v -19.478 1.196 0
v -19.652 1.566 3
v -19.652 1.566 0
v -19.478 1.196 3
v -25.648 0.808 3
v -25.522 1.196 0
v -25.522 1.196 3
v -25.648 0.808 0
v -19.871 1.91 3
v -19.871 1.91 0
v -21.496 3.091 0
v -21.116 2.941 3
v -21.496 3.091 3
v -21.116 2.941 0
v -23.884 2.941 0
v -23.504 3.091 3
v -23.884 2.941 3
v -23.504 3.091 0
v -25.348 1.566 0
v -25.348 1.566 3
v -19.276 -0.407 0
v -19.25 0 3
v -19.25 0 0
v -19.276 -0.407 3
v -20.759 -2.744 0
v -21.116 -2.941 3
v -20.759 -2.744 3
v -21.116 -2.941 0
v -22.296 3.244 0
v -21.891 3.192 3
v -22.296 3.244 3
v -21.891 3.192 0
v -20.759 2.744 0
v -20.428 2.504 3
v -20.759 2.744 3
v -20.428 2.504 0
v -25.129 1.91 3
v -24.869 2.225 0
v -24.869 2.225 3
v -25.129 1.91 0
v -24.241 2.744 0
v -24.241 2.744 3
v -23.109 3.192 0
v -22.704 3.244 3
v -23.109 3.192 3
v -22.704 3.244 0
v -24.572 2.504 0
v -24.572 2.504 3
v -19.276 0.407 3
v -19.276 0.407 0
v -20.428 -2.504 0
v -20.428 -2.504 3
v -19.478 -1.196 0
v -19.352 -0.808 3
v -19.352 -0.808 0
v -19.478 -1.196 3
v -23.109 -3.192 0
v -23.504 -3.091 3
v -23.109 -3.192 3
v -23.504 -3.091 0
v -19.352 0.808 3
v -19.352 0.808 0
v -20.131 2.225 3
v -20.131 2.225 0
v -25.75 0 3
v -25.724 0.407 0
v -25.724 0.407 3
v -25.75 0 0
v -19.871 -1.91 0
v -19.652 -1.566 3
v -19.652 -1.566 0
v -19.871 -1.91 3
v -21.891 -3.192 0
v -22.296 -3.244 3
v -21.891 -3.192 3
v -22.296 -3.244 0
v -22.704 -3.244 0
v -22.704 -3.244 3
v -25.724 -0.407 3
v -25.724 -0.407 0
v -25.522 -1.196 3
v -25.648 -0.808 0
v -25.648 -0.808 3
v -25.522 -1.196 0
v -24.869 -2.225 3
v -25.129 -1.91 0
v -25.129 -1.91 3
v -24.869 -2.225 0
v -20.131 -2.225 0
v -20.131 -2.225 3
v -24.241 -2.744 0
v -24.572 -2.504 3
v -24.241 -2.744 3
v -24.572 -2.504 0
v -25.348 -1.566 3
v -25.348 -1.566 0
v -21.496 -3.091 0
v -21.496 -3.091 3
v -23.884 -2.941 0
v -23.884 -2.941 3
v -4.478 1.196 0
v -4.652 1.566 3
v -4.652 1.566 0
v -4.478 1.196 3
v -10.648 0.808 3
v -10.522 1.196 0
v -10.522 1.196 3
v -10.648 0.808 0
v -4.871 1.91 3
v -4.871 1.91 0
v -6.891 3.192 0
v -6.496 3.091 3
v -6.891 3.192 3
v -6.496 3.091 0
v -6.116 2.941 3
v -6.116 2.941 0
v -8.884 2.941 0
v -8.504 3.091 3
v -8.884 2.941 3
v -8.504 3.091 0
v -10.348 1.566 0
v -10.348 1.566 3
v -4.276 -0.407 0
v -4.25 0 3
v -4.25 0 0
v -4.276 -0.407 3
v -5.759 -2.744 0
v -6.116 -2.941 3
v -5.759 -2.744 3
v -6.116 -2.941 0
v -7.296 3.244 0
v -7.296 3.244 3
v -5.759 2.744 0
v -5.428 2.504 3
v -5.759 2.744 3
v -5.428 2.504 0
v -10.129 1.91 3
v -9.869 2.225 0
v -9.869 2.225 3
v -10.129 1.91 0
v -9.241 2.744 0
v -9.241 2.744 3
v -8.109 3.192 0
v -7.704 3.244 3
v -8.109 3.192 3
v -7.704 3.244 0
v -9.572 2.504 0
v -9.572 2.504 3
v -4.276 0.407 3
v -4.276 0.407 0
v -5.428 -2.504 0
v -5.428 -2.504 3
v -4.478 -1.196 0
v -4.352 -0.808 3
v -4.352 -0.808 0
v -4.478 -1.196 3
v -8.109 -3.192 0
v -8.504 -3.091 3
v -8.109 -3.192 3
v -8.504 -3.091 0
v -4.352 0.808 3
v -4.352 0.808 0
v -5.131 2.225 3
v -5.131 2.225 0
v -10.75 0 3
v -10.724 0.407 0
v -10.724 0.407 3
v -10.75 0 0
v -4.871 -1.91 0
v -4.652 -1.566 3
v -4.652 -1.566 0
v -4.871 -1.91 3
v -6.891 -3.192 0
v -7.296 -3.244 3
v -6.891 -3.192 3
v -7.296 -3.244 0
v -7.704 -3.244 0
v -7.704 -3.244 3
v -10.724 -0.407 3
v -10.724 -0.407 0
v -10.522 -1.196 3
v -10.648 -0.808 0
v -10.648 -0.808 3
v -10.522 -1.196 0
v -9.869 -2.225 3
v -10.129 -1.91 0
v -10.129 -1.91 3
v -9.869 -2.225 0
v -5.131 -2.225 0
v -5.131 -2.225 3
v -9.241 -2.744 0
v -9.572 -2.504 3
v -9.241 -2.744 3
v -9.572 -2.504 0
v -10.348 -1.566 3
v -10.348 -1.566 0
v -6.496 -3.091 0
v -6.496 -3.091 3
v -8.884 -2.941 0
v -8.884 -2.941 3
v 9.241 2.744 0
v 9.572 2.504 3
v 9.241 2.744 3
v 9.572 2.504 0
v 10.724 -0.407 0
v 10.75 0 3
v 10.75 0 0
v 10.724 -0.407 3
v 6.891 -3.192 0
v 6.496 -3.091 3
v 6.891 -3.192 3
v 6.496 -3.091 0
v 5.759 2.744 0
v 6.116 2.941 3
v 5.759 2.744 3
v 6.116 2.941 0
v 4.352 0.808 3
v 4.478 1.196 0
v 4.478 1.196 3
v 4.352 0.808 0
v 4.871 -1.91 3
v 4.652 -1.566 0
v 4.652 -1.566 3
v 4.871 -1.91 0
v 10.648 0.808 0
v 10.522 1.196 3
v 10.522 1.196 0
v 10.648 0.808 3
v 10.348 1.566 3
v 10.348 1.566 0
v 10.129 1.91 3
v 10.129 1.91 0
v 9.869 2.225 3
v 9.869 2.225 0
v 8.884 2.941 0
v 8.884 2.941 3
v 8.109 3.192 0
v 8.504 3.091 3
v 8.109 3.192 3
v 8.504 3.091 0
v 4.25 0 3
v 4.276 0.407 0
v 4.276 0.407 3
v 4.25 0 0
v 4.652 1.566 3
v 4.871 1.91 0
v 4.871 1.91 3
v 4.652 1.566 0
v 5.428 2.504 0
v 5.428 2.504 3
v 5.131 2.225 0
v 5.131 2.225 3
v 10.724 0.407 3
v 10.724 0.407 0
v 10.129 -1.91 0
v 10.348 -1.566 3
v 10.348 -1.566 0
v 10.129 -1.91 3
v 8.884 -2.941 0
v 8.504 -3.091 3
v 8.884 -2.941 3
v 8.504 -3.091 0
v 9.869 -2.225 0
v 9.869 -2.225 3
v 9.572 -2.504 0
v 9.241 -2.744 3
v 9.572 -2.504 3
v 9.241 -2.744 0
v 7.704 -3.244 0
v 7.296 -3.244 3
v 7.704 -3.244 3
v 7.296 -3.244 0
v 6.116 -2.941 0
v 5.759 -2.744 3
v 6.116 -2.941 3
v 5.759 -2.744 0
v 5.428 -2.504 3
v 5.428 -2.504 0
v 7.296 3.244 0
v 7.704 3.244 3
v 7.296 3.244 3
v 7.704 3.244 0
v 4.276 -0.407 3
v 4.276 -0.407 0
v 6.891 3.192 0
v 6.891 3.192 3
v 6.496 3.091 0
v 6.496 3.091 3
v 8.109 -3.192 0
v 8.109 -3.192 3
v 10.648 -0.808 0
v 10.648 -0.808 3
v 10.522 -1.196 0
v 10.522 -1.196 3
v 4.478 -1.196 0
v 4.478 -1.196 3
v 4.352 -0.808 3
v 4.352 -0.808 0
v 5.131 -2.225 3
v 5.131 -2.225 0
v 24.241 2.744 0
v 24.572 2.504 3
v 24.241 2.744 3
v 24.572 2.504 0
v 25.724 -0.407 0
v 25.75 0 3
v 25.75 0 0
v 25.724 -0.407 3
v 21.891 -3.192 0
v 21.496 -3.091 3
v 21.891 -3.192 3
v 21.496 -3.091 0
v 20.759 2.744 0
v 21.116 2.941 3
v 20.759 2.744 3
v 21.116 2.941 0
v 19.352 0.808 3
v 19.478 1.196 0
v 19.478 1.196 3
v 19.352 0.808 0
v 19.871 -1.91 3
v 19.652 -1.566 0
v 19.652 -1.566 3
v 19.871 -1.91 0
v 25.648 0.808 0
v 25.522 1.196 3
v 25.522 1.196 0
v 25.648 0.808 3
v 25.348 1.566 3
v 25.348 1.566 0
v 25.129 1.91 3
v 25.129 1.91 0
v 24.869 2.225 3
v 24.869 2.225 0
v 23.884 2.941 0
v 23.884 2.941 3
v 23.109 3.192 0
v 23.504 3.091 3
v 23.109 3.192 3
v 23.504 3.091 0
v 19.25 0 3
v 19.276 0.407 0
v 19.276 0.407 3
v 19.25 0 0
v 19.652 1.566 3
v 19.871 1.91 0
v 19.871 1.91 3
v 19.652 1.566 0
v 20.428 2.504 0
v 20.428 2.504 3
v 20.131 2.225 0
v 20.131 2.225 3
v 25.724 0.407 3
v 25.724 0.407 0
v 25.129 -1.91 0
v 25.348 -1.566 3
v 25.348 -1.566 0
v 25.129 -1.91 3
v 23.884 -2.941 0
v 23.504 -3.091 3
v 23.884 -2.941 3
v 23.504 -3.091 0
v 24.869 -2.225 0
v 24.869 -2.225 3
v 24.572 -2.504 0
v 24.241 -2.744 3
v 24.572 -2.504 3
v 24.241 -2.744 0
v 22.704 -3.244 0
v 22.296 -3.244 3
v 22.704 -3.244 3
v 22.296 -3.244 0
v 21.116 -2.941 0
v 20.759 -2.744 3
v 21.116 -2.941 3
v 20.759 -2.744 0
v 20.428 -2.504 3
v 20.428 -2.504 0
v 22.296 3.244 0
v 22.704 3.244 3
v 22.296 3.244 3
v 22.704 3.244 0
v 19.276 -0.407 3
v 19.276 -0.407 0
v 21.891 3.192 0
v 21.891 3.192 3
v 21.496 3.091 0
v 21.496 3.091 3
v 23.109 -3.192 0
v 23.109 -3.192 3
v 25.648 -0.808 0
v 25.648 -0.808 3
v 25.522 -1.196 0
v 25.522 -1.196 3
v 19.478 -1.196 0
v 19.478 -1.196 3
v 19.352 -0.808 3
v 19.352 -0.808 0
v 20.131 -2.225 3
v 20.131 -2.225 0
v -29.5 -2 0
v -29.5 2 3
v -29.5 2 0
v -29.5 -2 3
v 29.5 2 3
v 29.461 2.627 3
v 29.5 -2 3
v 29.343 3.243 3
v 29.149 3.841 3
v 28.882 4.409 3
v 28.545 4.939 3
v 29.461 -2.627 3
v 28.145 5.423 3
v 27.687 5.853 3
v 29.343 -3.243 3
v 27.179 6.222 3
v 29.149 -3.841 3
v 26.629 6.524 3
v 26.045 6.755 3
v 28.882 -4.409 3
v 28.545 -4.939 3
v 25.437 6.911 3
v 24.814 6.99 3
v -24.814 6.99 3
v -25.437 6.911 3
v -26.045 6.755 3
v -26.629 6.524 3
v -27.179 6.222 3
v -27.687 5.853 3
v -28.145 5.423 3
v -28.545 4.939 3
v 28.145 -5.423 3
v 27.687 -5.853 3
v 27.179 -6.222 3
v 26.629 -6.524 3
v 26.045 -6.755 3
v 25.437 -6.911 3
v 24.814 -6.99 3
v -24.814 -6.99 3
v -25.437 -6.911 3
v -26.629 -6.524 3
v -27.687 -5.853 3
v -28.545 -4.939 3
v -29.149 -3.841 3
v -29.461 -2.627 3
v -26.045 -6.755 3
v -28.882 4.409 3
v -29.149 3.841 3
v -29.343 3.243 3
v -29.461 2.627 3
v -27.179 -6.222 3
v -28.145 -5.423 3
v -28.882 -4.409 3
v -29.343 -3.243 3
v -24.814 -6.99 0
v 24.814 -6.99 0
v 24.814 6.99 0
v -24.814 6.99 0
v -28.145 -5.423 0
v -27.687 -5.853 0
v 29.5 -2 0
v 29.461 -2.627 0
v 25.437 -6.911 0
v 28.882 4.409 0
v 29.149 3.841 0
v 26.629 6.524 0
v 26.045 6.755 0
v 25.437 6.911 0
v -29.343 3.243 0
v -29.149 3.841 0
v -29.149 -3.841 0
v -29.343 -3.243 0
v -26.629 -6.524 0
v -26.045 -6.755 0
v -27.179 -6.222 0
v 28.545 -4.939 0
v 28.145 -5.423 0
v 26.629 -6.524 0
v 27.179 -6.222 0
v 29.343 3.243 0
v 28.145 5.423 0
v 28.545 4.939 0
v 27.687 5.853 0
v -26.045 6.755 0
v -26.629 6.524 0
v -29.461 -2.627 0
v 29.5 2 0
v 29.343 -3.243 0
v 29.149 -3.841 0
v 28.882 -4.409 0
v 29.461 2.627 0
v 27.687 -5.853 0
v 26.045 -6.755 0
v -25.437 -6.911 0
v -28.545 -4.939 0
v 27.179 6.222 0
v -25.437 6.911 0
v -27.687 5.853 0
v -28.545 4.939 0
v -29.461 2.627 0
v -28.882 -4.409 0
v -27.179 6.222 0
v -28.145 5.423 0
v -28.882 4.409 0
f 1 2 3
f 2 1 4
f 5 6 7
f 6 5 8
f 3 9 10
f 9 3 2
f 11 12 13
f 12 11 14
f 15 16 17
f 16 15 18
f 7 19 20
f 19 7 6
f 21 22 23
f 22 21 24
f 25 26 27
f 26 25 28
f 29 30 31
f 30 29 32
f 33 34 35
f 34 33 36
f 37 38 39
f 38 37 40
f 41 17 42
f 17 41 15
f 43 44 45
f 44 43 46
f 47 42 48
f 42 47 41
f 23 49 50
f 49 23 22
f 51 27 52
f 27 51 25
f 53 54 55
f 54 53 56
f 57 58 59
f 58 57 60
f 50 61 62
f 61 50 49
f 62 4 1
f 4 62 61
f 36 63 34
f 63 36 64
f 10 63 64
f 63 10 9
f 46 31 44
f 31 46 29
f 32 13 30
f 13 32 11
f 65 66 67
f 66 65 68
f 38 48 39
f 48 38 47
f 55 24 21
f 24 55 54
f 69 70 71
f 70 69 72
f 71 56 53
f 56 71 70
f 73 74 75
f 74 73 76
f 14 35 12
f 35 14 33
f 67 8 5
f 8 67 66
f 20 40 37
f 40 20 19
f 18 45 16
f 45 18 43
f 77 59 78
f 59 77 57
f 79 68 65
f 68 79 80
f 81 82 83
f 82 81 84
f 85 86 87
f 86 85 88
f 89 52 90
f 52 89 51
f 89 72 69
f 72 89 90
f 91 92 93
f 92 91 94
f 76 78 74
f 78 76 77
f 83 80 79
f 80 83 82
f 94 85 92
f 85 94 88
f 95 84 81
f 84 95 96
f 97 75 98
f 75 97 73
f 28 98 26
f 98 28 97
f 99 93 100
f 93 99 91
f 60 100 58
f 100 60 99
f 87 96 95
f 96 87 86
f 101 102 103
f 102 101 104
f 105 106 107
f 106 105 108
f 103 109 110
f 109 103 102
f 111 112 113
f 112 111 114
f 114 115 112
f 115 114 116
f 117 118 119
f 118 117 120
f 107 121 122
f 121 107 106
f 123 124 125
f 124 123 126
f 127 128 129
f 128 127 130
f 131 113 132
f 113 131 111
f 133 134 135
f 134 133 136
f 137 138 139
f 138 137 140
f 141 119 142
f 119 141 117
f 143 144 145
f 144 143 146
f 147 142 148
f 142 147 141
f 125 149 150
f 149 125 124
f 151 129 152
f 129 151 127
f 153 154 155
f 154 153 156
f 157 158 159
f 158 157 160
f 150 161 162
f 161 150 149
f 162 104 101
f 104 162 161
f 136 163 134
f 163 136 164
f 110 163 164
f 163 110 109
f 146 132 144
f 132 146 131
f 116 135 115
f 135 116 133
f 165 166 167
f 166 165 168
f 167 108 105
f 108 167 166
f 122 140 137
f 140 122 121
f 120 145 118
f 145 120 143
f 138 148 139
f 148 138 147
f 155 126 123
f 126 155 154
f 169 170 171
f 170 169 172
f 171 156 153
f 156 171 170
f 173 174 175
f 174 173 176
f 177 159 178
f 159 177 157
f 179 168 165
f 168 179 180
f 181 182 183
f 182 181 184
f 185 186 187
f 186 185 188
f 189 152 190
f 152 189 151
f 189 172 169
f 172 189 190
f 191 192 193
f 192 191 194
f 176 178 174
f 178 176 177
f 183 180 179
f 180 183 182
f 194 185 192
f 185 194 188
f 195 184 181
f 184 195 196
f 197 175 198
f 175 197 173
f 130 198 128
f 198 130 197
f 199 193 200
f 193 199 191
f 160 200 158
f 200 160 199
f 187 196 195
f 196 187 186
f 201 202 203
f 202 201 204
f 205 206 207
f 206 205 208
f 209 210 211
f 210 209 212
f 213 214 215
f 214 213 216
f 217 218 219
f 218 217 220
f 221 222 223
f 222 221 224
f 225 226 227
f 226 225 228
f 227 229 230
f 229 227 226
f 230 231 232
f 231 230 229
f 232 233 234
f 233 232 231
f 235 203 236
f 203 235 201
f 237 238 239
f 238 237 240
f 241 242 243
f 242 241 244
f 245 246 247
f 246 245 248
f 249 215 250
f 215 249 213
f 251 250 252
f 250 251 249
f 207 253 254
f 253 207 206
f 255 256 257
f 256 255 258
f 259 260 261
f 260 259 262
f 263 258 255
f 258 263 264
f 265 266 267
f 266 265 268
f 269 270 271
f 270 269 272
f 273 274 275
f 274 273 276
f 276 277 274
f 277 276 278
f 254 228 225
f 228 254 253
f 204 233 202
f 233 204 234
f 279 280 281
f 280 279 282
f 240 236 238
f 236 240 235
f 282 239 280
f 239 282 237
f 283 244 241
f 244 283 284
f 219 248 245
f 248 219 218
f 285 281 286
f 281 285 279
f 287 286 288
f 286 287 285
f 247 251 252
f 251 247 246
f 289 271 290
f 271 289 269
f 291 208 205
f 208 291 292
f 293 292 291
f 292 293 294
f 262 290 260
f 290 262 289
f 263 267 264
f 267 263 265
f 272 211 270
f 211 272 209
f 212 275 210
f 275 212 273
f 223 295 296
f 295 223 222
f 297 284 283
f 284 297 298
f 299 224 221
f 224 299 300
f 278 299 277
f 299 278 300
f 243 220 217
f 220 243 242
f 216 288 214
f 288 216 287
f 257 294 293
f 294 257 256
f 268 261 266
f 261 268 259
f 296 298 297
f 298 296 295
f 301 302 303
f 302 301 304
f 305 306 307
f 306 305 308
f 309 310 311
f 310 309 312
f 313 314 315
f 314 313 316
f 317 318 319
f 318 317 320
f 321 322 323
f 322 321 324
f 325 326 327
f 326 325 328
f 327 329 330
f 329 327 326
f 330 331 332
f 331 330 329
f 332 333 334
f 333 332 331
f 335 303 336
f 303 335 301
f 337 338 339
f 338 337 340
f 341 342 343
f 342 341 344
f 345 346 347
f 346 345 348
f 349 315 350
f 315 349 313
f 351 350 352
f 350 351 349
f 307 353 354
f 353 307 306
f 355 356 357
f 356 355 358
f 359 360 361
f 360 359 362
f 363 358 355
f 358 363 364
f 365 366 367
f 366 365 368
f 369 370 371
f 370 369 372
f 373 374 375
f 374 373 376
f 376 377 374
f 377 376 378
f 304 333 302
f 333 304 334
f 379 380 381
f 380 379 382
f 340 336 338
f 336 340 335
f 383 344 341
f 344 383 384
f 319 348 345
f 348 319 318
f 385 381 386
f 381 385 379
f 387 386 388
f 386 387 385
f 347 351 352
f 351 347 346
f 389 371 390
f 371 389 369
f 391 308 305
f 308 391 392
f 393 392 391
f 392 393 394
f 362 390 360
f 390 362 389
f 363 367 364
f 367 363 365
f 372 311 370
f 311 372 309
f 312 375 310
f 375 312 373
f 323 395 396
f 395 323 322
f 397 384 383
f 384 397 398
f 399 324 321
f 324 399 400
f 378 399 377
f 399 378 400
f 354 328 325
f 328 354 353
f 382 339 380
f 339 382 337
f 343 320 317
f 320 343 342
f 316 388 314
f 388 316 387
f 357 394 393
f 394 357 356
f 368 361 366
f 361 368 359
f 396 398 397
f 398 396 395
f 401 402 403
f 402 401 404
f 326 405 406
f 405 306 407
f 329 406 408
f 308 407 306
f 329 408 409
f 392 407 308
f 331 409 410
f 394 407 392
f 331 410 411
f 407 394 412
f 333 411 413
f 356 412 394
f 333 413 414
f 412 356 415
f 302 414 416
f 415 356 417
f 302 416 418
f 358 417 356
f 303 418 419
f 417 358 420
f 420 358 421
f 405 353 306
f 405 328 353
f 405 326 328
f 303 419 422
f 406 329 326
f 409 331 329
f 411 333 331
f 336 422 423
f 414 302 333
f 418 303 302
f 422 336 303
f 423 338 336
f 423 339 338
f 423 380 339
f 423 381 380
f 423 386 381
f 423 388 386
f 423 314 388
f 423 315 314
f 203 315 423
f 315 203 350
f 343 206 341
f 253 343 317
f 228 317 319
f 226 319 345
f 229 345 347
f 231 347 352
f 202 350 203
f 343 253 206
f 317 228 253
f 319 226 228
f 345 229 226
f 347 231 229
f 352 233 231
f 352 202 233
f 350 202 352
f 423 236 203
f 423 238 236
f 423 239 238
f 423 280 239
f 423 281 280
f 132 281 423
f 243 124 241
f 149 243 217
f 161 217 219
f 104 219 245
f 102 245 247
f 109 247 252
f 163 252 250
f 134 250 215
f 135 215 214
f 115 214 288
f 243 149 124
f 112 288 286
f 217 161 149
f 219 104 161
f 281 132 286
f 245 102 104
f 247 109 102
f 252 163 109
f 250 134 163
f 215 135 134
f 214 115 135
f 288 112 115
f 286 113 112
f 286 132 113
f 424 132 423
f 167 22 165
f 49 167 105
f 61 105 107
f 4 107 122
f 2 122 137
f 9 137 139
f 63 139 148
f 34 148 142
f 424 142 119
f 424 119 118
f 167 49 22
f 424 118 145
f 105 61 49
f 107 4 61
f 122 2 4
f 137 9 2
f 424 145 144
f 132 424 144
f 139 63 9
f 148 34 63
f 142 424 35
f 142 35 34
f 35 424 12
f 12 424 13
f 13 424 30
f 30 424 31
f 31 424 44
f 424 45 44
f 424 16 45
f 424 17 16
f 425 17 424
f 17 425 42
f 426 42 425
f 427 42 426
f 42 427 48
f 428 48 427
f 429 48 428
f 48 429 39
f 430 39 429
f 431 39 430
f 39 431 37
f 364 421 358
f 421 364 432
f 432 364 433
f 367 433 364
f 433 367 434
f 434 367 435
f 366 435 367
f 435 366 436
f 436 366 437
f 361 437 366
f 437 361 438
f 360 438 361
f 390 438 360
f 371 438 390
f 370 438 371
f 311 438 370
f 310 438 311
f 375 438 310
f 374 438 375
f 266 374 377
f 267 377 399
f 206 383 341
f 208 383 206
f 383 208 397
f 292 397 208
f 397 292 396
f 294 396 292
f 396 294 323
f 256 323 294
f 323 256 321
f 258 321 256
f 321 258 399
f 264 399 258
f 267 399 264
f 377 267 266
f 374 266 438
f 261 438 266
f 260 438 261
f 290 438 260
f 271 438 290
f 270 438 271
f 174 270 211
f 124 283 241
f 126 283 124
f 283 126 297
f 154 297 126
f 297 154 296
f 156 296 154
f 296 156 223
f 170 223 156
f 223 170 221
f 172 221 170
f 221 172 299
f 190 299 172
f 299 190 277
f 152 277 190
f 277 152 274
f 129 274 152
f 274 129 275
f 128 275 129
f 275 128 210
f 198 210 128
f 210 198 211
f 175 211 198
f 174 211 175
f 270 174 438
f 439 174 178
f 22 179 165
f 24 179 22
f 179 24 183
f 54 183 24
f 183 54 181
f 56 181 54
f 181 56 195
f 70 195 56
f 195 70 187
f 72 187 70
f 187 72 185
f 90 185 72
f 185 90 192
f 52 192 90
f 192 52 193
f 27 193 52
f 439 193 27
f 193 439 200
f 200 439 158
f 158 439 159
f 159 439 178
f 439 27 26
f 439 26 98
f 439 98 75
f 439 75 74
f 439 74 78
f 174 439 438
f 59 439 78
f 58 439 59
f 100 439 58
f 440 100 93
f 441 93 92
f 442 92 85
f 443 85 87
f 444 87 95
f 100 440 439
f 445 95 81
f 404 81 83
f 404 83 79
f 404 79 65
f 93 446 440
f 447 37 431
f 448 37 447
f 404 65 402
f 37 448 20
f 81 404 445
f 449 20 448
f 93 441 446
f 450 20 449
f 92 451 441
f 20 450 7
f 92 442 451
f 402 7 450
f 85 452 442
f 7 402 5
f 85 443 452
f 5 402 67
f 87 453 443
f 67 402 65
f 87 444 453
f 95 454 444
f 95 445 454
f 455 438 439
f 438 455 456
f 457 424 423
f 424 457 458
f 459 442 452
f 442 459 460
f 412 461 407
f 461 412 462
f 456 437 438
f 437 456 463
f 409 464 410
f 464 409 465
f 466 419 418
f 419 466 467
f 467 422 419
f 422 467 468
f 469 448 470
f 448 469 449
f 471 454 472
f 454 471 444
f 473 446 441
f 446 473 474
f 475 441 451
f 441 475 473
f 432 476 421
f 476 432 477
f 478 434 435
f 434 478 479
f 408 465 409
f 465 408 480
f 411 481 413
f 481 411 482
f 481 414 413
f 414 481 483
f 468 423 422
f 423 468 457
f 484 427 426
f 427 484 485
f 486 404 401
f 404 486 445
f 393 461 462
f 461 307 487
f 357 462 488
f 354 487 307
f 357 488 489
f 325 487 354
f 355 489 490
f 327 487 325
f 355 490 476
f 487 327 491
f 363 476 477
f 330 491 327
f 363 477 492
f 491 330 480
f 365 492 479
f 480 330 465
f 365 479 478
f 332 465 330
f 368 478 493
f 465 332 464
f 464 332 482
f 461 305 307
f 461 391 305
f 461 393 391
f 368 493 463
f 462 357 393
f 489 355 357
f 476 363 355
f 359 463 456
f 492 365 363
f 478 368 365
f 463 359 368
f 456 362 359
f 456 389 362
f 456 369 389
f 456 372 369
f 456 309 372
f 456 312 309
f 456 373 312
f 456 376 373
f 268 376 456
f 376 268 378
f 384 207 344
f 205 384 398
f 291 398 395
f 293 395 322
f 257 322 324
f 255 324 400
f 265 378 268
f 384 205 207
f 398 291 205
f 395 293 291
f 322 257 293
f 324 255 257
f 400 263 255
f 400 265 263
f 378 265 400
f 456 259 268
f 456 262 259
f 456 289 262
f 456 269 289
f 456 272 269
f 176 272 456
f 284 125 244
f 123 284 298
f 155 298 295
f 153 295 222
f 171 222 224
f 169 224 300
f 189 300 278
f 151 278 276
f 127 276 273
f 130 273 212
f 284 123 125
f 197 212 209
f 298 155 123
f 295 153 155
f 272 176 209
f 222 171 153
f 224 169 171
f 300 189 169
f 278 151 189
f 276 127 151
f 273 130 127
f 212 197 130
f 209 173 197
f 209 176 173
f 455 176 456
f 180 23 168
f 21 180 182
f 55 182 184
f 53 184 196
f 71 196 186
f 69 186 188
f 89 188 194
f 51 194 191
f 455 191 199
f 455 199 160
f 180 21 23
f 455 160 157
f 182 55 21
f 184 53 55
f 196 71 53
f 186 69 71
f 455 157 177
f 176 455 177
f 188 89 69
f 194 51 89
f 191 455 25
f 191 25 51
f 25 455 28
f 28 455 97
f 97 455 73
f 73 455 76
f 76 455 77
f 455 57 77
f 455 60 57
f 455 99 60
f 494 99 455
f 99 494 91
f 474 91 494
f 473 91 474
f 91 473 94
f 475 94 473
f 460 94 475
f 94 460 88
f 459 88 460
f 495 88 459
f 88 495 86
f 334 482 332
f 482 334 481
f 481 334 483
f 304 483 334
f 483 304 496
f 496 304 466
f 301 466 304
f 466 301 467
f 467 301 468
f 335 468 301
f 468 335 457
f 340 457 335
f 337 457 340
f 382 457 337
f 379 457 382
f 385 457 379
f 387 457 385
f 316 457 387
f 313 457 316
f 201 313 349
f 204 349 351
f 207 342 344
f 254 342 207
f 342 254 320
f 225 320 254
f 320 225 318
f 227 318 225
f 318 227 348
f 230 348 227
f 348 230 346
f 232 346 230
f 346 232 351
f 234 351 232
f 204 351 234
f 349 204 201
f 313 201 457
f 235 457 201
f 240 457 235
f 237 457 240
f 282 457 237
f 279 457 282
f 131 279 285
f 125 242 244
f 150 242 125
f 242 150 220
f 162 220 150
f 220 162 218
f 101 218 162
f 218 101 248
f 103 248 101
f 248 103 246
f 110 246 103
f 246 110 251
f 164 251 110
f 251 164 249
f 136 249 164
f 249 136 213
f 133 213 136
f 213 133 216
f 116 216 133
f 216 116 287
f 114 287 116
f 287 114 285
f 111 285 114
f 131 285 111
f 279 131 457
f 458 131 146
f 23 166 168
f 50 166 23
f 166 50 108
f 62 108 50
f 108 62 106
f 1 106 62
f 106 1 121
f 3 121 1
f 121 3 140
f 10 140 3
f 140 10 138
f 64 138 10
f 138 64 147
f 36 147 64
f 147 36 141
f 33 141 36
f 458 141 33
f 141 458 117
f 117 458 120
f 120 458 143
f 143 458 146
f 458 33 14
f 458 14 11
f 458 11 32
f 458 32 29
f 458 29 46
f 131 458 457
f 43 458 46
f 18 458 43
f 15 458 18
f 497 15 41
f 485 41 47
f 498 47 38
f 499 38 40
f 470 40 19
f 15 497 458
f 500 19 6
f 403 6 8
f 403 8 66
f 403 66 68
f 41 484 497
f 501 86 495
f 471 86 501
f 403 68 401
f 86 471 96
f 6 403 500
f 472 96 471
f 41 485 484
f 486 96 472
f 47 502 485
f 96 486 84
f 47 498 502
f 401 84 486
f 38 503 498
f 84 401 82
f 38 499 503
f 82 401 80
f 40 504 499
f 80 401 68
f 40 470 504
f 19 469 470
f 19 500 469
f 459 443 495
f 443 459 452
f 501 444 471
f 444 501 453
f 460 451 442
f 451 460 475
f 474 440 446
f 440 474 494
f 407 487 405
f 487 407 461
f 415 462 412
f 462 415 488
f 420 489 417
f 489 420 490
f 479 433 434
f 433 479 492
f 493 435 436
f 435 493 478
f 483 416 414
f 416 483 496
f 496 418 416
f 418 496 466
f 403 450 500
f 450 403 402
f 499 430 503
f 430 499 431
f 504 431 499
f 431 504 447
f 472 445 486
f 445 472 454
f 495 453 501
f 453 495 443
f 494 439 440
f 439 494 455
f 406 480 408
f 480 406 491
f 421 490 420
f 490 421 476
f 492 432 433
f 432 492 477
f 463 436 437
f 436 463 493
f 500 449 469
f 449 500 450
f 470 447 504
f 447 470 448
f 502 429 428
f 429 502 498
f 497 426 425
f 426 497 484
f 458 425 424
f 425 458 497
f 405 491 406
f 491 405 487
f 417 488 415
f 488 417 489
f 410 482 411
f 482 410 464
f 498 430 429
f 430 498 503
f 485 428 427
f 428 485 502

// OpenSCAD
// Generated by SolidPython 1.1.3 on 2023-03-12 21:54:42
$fn = 50;


difference() {
	union() {
		translate(v = [0, 0, 0]) {
			rotate(a = [0, 0, 0]) {
				hull() {
					translate(v = [-24.5000000000, 2.0000000000, 0]) {
						rotate(a = [0, 0, 0]) {
							translate(v = [0, 0, 0]) {
								rotate(a = [0, 0, 0]) {
									cylinder(h = 3, r = 5);
								}
							}
						}
					}
					translate(v = [24.5000000000, 2.0000000000, 0]) {
						rotate(a = [0, 0, 0]) {
							translate(v = [0, 0, 0]) {
								rotate(a = [0, 0, 0]) {
									cylinder(h = 3, r = 5);
								}
							}
						}
					}
					translate(v = [-24.5000000000, -2.0000000000, 0]) {
						rotate(a = [0, 0, 0]) {
							translate(v = [0, 0, 0]) {
								rotate(a = [0, 0, 0]) {
									cylinder(h = 3, r = 5);
								}
							}
						}
					}
					translate(v = [24.5000000000, -2.0000000000, 0]) {
						rotate(a = [0, 0, 0]) {
							translate(v = [0, 0, 0]) {
								rotate(a = [0, 0, 0]) {
									cylinder(h = 3, r = 5);
								}
							}
						}
					}
				}
			}
		}
	}
	union() {
		translate(v = [-22.5000000000, 0.0000000000, 0]) {
			rotate(a = [0, 0, 0]) {
				translate(v = [0, 0, -50]) {
					rotate(a = [0, 0, 0]) {
						cylinder(h = 100, r = 3.2500000000);
					}
				}
			}
		}
		translate(v = [-7.5000000000, 0.0000000000, 0]) {
			rotate(a = [0, 0, 0]) {
				translate(v = [0, 0, -50]) {
					rotate(a = [0, 0, 0]) {
						cylinder(h = 100, r = 3.2500000000);
					}
				}
			}
		}
		translate(v = [7.5000000000, 0.0000000000, 0]) {
			rotate(a = [0, 0, 0]) {
				translate(v = [0, 0, -50]) {
					rotate(a = [0, 0, 0]) {
						cylinder(h = 100, r = 3.2500000000);
					}
				}
			}
		}
		translate(v = [22.5000000000, 0.0000000000, 0]) {
			rotate(a = [0, 0, 0]) {
				translate(v = [0, 0, -50]) {
					rotate(a = [0, 0, 0]) {
						cylinder(h = 100, r = 3.2500000000);
					}
				}
			}
		}
	}
}
/***********************************************
*********      SolidPython code:      **********
************************************************
 
from solid import *
import os
import subprocess

import oomB

import opsc_library_gen

mode = "laser"
#mode = "3d_print"

defined_objects = {}

radius_dict = {}
countersunk_dict = {}


def set_mode(m):
    global mode
    mode = m
    radius_dict['M6'] = 6.5/2
    radius_dict['M3'] = 3.3/2
    if mode == "laser":
        radius_dict['M6'] = 6/2
        radius_dict['M3'] = 3/2

    countersunk_dict['M3'] = {}
    countersunk_dict['M3']['little_rad'] = radius_dict['M3']
    countersunk_dict['M3']['big_rad'] = (5.5+0.6)/2
    if mode == "laser":
        countersunk_dict['M3']['big_rad'] = (4.75+0.6)/2
        countersunk_dict['M3']['little_rad'] = (4.75+0.6)/2

    countersunk_dict['M3']['height'] = 1.7


def opsc_make_object(filename, objects, save_type="none",resolution=50, layers = 1, tilediff = 200, mode="laser", overwrite=True):
    if overwrite or not os.path.exists(filename):
        set_mode(mode)
        save_type = save_type.lower()
        os.makedirs(os.path.dirname(filename), exist_ok=True)
        final_object = opsc_get_object(objects, mode = mode)
        # Save the final object to the specified filename    
        scad_render_to_file(final_object, filename, file_header='$fn = %s;' % resolution, include_orig_code=True)
        if mode == "laser":
            filename_laser = filename.replace(".scad","-flat.scad")
            scad_render_to_file(getLaser(final_object, layers=layers, tilediff=tilediff), filename_laser, file_header='$fn = %s;' % resolution, include_orig_code=True)
            if save_type == "all":
                saveToAll(filename_laser)
            elif save_type == "dxf":
                saveToDxf(filename_laser)
        if save_type == "all":
            saveToAll(filename)
        elif save_type == "dxf":
            saveToDxf(filename)


def opsc_get_object(objects, mode = "laser"):
    # Create the solidpython objects only include the positive objects and if they don't have inclusion or their inclusion is either all or mode
    # Initialize an empty list to store the results
    positive_objects = []

    # Iterate over the "objects" list
    for obj in objects:
        # Check if the current object has a "type" key with a value of "positive"
        if obj['type'] == 'positive':
            # Check if the current object has an "inclusion" key and its value matches "mode",
            # or if the current object does not have an "inclusion" key at all
            if not 'inclusion' in obj or obj['inclusion'] == "all" or obj['inclusion'] == mode:
                # Call the "get_opsc_item" function with the current object as an argument
                opsc_item = get_opsc_item(obj)
                # Add the result to the "positive_objects" list
                positive_objects.append(opsc_item)
# Initialize an empty list to store the results
    negative_objects = []

    # Iterate over the "objects" list
    for obj in objects:
        # Check if the current object has a "type" key with a value of "negative"
        if obj['type'] == 'negative':
            # Check if the current object has an "inclusion" key and its value matches "mode",
            # or if the current object does not have an "inclusion" key at all
            if not 'inclusion' in obj or obj['inclusion'] == "all" or obj['inclusion'] == mode:
                # Call the "get_opsc_item" function with the current object as an argument
                opsc_item = get_opsc_item(obj)
                # Add the result to the "negative_objects" list
                negative_objects.append(opsc_item)
    
    #positive_objects = [get_opsc_item(obj) for obj in objects if obj['type'] == 'positive']
    #negative_objects = [get_opsc_item(obj) for obj in objects if obj['type'] == 'negative']
    # Union the positive objects
    positive_object = union()(*positive_objects)
    # Union the negative objects
    negative_object = union()(*negative_objects)
    # Create the final object by subtracting the negative objects from the positive objects
    return difference()(positive_object, negative_object)

def get_opsc_item(params):
    # A dictionary to map radius string values to numerical values
    #radius_dict = {'small': 5, 'medium': 10, 'large': 15}
    # An array of function names for basic shapes
    basic_shapes = ['cube', 'sphere', 'cylinder']
    
    # An array of function names for other shapes
    other_shapes = ['hole', 'slot', 'rounded_rectangle', 'countersunk']
    


    # Convert radius to r if present, and remove radius from the params dictionary
    if 'radius' in params:
        if isinstance(params['radius'], str):
            # Use the radius_dict to map the radius string value to a numerical value
            params['r'] = radius_dict[params['radius']]
        else:
            params['r'] = params['radius']
        del params['radius']
    

    # Check if the object type is a basic shape
    if params['shape'] in basic_shapes:
        # Remove shape and unexpected dictionary values
        allowed_keys = {'size', 'r', 'r1', 'r2', 'd', 'h', 'rw', 'rh', 'dw', 'dh'}
        shape_params = {k: v for k, v in params.items() if k in allowed_keys}

        # Call the corresponding function for the shape parameter, using ** notation to pass the shape_params dictionary as keyword arguments
        return get_opsc_transform(params,globals()[params['shape']](**shape_params))
    
    # If the object type is not a basic shape, check if it's a defined object or one of the other shapes
    elif params['shape'] in other_shapes:
        # Call the corresponding function for the shape parameter, passing the params dictionary as an argument
        p2 = copy.deepcopy(params)
        p2["pos"] = [0,0,0]
        return get_opsc_transform(params,globals()[params['shape']](p2))
    
    # If the object is not a basic shape or a defined object, try to import it from a .scad file
    else:
        obj = defined_objects[params['shape']]
        return get_opsc_transform(params,obj)

def get_opsc_transform(params, solid_obj):
    # Rotate the object based on the 'rot' field in the params dictionary, or the 'rotX', 'rotY', and 'rotZ' fields if 'rot' is not present
    rot = params.get('rot', [])
    if rot:
        rotX, rotY, rotZ = rot
    else:
        rotX = params.get('rotX', 0)
        rotY = params.get('rotY', 0)
        rotZ = params.get('rotZ', 0)
    solid_obj = rotate([rotX, rotY, rotZ])(solid_obj)

    # Translate the object based on the 'pos' field in the params dictionary, or the 'x', 'y', and 'z' fields if 'pos' is not present
    pos = params.get('pos', [])
    if pos:
        x, y, z = pos
    else:
        x = params.get('x', 0)
        y = params.get('y', 0)
        z = params.get('z', 0)
    solid_obj = translate([x, y, z])(solid_obj)
    return solid_obj


import random

def opsc_easy_array(type, shape, repeats, pos_start, shift_arr, **kwargs):
    for i in range(0,3):
        repeats.append(1)
        pos_start.append(0)
        shift_arr.append(0)
    return_objects = []

    for x in range(0,repeats[0]):
        for y in range(0,repeats[1]):
            for z in range(0,repeats[2]):
                return_objects.append(opsc_easy(type, shape, pos=[pos_start[0]+x*shift_arr[0],pos_start[1]+y*shift_arr[1],pos_start[2]+z*shift_arr[2]], **kwargs))
    return return_objects                



def opsc_easy(type, shape, **kwargs):
    obj = {
        'type': type,
        'shape': shape
    }
    for param in ['size', 'r', 'r1', 'r2', 'd', 'h', 'rw', 'rh', 'dw', 'dh', 'pos', 'x', 'y', 'z', 'rot', 'rotX', 'rotY', 'rotZ', "w", "inclusion"]:
        if param in kwargs:
            obj[param] = kwargs[param]
    return obj

def hole(params):
    p2 = copy.deepcopy(params)  
    # Check if the radius is a string and replace it with the corresponding value from the dictionary
    if isinstance(p2['r'], str):
        p2['r'] = radius_dict[p2['r']]
    
    # Set the height to 100 if not specified
    if 'h' not in p2:
        p2['h'] = 100
        p2["pos"] = [0,0,-50]
    p2["center"] = True
    # Create the cylinder object
    p2["shape"] = "cylinder"
    p2["type"] = "positive"

    return get_opsc_item(p2)

import copy

def countersunk(params):
    p2 = copy.deepcopy(params)
    counter_rad = p2['r']
    p2['r'] = radius_dict[p2['r']]
    hp = copy.deepcopy(p2)
    hp["type"] = "positive"
    hp["shape"] = "hole"
    del hp["rot"]
    hol = get_opsc_item(hp)
    
    cp = copy.deepcopy(p2)
    cp["h"] = countersunk_dict[counter_rad]["height"]
    cp["r2"] = countersunk_dict[counter_rad]["little_rad"]
    cp["r1"] = countersunk_dict[counter_rad]["big_rad"]
    del cp["r"]
    del cp["rot"]
    cp["type"] = "positive"
    cp["shape"] = "cylinder"
    cp["pos"] = [0,0,0]

    top = get_opsc_item(cp)
    return union()(hol,top)



def slot(params):  
    p2 = copy.deepcopy(params) 
    if isinstance(p2['r'], str):
        p2['r'] = radius_dict[p2['r']]
    p2["type"] = "positive"
    p2["shape"] = "hole"
    del p2["rot"]
    p2["pos"] = [0,0,0]
    left = copy.deepcopy(p2)
    right = copy.deepcopy(p2)
    left["pos"][0] = p2["w"] / 2 - p2["r"] 
    
    right["pos"][0] = -p2["w"] / 2 + p2["r"] 
    pass
    leftObj = get_opsc_item(left)
    rightObj = get_opsc_item(right)
    return hull()(leftObj, rightObj)

def rounded_rectangle(params):   
    p2 = copy.deepcopy(params) 
    p2["h"] = p2["size"][2]
    p2["pos"] = p2.get("pos", [0, 0, 0]) 
    p2["type"] = "positive"
    p2["shape"] = "hole"
    p2["pos"] = [0,0,0]
    
    if 'rot' in p2:
        del p2["rot"]   
    if 'r' not in p2:
        p2["r"] = 5 
    tl = copy.deepcopy(p2)
    tr = copy.deepcopy(p2)
    bl = copy.deepcopy(p2)
    br = copy.deepcopy(p2)
    tl["pos"][0] = -(p2["size"][0] - p2["r"]*2)/2
    tl["pos"][1] = (p2["size"][1] - p2["r"]*2)/2
    tr["pos"][0] = (p2["size"][0] - p2["r"]*2)/2
    tr["pos"][1] = (p2["size"][1] - p2["r"]*2)/2
    bl["pos"][0] = -(p2["size"][0] - p2["r"]*2)/2
    bl["pos"][1] = -(p2["size"][1] - p2["r"]*2)/2
    br["pos"][0] = (p2["size"][0] - p2["r"]*2)/2
    br["pos"][1] = -(p2["size"][1] - p2["r"]*2)/2
    del tl["size"]
    del tr["size"]
    del bl["size"]
    del br["size"]
    tlo = get_opsc_item(tl)
    tro = get_opsc_item(tr)
    blo = get_opsc_item(bl)
    bro = get_opsc_item(br)    
    return hull()(tlo, tro, blo, bro)



def import_scad_object(filename):
    # Import the .scad file and convert it to a solidpython object
    #filename = "parts"
    obj = import_scad(filename)
    return obj.main()
    


import os
import solid as solidpython

# A dictionary to store the defined objects


def load_scad_objects():
    opsc_library_gen.gen_library(defined_objects)

import random

def test(num_objects):
    objects = []
    for i in range(num_objects):
        # Choose a random shape
        #shape = random.choice(['cube', 'sphere', 'cylinder', 'hole', 'slot', "rounded_rectangle"])
        shape = random.choice(["rounded_rectangle"])

        # Choose a random type
        type = random.choice(['positive', 'negative'])
        
        # Create an empty object dictionary
        obj = {'shape': shape, 'type': type}
        
        # Set shape-specific parameters
        if obj['shape'] in ['cube']:
            obj['size'] =  [random.uniform(5, 15), random.uniform(5, 15), random.uniform(5, 15)]
        if obj['shape'] in ['rounded_rectangle']:
            obj['size'] =  [random.uniform(5, 15), random.uniform(5, 15), random.uniform(5, 15)]
            obj['r'] = random.uniform(0.5, 5)
        elif obj['shape'] == 'sphere':
            obj['r'] = random.uniform(5, 15)
        elif obj['shape'] in ['cylinder', 'hole']:
            obj['r'] = random.uniform(0.5, 5)
            obj['h'] = random.uniform(5, 15)
        elif obj['shape'] == 'slot':
            obj['r'] = random.uniform(0.5, 5)
            obj['h'] = random.uniform(5, 15)
            obj['w'] = random.uniform(5, 15)
        
        # Set a random position and rotation
        obj['pos'] = [random.uniform(-20, 20), random.uniform(-20, 20), random.uniform(-20, 20)]
        obj['rot'] = [random.uniform(-180, 180), random.uniform(-180, 180), random.uniform(-180, 180)]
        
        # Add the object to the list
        objects.append(obj)
    return objects

####### old file saving
def saveToAll(fileIn):
    saveToDxf(fileIn)
    saveToPng(fileIn)
    saveToStl(fileIn)
    saveToSvg(fileIn)

def saveToDxf(fileIn, fileOut="", copy_to_laser=True):
    if fileOut == "":
        fileOut = fileIn.replace(".scad",".dxf")
    saveToFile(fileIn, fileOut)


    
def saveToPng(fileIn, fileOut="",extra="--render"):
    if fileOut == "":
        fileOut = fileIn.replace(".scad",".png")
    saveToFile(fileIn, fileOut)

def saveToStl(fileIn, fileOut=""):
    if fileOut == "":
        fileOut = fileIn.replace(".scad",".stl")
    saveToFile(fileIn, fileOut)
    
def saveToSvg(fileIn, fileOut=""):
    if fileOut == "":
        fileOut = fileIn.replace(".scad",".svg")
    saveToFile(fileIn, fileOut)

def saveToFile(fileIn, fileOut,extra=""):
    #extra = extra + " --colorscheme Tomorrow"

    launchStr = 'openscad -o "' + fileOut + '"' + extra + ' "' + fileIn + '"'
    if ".png" in fileOut:
        launchStr = launchStr + " --render"
    print("            saveToFile launch string: " + launchStr)
    subprocess.run(launchStr)
    x=0

def getLaser(final_object,start=1.5,layers=1,thickness=3,tilediff=200):
        rv= []

        for x in range(layers):
            rv.append(translate([0,x*tilediff,0])(
                    projection()(
                        intersection()(translate([-500,-500,start+x*thickness])(cube(size=[1000,1000,0.1])),
                            final_object
                        )
                    )
            )
            )
            
        return union()(rv)

set_mode("laser")
load_scad_objects() 
 
************************************************/
